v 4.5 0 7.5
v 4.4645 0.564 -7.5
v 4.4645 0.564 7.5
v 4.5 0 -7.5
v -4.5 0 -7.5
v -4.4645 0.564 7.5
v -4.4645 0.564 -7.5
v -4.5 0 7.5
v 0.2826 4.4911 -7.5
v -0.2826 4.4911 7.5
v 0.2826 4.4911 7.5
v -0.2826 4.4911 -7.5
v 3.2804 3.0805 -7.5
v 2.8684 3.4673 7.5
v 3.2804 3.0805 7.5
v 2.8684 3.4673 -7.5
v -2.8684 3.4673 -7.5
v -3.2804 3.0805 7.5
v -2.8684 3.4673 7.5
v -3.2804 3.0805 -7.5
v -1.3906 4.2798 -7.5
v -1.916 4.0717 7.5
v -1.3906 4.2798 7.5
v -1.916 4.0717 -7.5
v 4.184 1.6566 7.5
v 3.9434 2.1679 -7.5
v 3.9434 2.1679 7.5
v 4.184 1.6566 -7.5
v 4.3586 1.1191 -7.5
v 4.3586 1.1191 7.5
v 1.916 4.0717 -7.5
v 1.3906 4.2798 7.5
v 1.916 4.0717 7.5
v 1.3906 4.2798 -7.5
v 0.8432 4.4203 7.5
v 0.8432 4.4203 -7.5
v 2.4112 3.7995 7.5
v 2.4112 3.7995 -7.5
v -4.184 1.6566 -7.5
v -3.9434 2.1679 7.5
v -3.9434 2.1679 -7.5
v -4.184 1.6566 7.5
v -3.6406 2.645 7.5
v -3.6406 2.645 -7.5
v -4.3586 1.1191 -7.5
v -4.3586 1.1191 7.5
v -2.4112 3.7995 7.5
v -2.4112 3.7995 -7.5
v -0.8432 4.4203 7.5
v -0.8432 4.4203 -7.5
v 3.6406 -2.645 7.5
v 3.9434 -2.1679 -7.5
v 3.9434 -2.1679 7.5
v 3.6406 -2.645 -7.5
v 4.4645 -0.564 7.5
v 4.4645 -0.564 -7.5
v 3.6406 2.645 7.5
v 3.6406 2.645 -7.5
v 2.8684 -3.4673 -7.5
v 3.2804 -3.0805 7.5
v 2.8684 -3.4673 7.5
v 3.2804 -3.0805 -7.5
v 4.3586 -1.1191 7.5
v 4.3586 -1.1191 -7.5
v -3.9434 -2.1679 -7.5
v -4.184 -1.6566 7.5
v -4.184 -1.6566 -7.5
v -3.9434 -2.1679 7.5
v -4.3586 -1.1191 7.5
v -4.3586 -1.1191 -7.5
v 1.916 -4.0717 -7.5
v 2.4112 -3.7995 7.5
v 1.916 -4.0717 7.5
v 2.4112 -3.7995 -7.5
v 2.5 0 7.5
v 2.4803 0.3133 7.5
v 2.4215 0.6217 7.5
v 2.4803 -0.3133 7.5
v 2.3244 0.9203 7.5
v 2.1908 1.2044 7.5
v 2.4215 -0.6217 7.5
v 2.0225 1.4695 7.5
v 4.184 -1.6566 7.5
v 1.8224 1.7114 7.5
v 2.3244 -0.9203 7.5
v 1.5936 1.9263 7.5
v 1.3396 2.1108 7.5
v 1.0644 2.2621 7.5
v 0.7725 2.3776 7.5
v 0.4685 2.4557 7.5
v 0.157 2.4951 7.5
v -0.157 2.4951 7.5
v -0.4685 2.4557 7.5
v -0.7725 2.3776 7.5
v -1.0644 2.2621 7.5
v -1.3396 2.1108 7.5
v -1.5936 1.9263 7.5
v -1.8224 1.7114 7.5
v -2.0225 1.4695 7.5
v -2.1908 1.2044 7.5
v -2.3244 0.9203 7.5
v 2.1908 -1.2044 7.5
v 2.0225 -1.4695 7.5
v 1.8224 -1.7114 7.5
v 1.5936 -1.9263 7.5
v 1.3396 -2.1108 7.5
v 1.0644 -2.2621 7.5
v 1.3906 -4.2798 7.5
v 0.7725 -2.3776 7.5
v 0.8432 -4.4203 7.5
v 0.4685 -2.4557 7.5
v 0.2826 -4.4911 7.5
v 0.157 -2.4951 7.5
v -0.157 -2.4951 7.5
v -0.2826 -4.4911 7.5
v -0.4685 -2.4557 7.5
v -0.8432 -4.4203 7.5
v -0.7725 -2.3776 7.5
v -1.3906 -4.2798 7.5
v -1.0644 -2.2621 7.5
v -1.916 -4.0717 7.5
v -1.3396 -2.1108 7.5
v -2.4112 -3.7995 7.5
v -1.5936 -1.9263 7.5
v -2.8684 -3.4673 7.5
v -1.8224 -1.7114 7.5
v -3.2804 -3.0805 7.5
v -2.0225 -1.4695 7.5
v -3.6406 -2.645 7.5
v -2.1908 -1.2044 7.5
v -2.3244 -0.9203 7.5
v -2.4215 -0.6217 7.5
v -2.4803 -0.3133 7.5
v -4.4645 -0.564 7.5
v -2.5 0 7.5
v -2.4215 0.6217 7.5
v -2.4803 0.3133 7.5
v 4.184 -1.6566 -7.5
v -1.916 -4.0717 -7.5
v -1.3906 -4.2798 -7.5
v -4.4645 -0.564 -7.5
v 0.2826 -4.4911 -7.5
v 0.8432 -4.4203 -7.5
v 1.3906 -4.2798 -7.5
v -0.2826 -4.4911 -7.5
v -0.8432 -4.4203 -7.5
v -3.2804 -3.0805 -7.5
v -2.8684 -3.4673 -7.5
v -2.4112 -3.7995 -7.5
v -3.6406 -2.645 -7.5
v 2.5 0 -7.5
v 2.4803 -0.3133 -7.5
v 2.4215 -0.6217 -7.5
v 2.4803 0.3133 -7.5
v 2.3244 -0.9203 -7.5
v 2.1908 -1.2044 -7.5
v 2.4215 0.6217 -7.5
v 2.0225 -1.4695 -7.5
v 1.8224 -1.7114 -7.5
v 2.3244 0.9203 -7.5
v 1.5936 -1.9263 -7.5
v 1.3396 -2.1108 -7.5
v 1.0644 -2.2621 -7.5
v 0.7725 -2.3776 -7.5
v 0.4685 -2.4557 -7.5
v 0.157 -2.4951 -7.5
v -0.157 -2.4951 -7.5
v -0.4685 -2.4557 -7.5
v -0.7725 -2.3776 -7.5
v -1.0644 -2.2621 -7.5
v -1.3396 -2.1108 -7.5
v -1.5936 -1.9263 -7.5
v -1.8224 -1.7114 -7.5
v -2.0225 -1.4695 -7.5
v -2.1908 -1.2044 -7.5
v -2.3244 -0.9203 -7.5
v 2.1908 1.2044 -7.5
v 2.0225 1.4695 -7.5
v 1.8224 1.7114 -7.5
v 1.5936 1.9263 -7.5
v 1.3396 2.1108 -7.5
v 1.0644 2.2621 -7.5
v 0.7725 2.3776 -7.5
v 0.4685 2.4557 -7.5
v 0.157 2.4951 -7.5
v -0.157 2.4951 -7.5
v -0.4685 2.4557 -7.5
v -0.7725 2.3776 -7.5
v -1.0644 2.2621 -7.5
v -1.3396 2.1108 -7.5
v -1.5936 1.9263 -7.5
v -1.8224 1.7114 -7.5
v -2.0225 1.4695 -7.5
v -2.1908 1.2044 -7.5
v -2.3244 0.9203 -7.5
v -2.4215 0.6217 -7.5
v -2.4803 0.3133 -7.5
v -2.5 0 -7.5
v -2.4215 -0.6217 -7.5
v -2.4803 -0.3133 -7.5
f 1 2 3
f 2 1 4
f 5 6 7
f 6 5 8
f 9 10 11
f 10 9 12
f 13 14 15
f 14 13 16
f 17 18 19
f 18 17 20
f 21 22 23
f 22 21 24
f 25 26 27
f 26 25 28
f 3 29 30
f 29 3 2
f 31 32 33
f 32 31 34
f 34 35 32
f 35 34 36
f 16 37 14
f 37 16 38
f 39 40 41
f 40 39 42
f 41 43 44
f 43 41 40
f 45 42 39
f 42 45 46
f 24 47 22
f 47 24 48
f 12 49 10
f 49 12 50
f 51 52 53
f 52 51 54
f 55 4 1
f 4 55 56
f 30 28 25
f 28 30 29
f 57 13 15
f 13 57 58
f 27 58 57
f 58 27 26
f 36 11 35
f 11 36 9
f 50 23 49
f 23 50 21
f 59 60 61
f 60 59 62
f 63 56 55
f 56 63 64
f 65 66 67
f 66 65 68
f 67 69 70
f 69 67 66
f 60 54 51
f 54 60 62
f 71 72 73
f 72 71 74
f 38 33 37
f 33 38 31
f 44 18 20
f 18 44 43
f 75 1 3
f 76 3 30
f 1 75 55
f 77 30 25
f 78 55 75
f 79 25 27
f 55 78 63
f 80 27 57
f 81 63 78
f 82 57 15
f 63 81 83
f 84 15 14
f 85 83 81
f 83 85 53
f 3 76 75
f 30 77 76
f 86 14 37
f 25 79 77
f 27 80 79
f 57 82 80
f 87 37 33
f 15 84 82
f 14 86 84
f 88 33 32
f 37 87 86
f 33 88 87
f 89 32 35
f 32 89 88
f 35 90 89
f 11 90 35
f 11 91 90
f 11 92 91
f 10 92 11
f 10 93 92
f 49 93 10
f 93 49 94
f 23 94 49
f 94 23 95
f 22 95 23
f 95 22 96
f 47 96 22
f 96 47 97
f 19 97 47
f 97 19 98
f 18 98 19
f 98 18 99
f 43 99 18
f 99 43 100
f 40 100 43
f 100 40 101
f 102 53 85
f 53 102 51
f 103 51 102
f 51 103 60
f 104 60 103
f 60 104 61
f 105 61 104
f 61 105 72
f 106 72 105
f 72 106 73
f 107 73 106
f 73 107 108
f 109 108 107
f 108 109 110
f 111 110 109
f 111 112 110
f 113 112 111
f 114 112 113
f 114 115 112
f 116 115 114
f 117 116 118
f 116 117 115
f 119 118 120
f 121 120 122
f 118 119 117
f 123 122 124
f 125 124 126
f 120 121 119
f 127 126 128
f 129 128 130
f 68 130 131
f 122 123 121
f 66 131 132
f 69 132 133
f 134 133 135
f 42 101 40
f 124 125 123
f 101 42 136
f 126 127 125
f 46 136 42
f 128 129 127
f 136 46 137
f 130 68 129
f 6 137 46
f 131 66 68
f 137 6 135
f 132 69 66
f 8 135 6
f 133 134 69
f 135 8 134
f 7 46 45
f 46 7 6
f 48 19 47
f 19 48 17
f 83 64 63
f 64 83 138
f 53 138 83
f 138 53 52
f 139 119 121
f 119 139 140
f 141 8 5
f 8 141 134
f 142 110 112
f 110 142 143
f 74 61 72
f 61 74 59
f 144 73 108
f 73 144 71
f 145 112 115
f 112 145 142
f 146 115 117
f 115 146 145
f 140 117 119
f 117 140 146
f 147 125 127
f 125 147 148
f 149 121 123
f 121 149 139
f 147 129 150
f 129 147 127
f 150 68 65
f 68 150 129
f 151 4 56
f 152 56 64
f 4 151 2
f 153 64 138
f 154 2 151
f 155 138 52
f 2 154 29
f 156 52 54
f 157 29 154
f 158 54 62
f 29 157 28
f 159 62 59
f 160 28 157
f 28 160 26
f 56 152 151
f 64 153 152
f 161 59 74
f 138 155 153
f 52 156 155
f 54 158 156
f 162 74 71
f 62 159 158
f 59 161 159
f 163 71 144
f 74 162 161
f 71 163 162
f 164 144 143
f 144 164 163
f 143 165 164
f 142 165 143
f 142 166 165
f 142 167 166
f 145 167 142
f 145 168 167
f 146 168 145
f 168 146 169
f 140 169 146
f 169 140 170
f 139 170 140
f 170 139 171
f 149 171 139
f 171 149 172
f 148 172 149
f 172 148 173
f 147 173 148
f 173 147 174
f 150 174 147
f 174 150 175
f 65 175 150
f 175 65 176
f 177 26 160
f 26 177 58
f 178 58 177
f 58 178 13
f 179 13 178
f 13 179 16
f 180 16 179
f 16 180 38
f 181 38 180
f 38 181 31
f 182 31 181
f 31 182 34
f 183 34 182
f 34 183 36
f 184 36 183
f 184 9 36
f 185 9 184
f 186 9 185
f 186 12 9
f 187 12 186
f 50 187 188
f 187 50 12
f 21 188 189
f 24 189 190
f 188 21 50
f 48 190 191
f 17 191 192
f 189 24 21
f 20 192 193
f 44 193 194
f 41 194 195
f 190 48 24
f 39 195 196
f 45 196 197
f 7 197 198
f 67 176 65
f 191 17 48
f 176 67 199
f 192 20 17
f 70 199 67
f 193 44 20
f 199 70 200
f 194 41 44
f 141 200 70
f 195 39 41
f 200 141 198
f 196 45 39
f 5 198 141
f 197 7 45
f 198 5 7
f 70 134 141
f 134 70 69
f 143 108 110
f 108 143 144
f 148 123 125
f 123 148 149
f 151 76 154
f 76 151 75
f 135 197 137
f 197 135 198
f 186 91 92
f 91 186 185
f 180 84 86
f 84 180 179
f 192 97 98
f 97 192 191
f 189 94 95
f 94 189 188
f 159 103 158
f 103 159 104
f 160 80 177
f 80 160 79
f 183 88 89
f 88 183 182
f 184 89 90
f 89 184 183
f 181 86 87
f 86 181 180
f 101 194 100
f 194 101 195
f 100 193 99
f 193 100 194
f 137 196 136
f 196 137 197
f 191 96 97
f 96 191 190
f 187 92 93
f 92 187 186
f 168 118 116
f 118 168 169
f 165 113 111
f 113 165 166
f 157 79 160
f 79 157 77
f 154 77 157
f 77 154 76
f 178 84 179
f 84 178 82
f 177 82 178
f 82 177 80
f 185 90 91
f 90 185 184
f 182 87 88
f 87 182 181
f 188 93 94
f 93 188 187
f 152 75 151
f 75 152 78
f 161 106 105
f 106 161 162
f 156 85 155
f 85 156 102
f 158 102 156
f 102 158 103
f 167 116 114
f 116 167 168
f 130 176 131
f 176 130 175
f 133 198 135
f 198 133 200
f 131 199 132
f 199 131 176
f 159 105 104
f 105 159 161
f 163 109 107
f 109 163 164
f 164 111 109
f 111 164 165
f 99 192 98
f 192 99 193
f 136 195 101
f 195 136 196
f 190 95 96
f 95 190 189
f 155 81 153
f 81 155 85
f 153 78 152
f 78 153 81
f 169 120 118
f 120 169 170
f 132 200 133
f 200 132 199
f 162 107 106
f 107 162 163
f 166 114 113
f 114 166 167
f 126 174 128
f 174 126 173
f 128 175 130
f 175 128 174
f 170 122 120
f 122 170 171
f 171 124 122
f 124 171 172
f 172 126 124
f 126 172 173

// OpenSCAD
$fn = 50;


difference() {
	union() {
		translate(v = [0, 0, -7.5000000000]) {
			cylinder(h = 15, r = 4.5000000000);
		}
	}
	union() {
		translate(v = [0, 0, -100.0000000000]) {
			cylinder(h = 200, r = 2.5000000000);
		}
	}
}
